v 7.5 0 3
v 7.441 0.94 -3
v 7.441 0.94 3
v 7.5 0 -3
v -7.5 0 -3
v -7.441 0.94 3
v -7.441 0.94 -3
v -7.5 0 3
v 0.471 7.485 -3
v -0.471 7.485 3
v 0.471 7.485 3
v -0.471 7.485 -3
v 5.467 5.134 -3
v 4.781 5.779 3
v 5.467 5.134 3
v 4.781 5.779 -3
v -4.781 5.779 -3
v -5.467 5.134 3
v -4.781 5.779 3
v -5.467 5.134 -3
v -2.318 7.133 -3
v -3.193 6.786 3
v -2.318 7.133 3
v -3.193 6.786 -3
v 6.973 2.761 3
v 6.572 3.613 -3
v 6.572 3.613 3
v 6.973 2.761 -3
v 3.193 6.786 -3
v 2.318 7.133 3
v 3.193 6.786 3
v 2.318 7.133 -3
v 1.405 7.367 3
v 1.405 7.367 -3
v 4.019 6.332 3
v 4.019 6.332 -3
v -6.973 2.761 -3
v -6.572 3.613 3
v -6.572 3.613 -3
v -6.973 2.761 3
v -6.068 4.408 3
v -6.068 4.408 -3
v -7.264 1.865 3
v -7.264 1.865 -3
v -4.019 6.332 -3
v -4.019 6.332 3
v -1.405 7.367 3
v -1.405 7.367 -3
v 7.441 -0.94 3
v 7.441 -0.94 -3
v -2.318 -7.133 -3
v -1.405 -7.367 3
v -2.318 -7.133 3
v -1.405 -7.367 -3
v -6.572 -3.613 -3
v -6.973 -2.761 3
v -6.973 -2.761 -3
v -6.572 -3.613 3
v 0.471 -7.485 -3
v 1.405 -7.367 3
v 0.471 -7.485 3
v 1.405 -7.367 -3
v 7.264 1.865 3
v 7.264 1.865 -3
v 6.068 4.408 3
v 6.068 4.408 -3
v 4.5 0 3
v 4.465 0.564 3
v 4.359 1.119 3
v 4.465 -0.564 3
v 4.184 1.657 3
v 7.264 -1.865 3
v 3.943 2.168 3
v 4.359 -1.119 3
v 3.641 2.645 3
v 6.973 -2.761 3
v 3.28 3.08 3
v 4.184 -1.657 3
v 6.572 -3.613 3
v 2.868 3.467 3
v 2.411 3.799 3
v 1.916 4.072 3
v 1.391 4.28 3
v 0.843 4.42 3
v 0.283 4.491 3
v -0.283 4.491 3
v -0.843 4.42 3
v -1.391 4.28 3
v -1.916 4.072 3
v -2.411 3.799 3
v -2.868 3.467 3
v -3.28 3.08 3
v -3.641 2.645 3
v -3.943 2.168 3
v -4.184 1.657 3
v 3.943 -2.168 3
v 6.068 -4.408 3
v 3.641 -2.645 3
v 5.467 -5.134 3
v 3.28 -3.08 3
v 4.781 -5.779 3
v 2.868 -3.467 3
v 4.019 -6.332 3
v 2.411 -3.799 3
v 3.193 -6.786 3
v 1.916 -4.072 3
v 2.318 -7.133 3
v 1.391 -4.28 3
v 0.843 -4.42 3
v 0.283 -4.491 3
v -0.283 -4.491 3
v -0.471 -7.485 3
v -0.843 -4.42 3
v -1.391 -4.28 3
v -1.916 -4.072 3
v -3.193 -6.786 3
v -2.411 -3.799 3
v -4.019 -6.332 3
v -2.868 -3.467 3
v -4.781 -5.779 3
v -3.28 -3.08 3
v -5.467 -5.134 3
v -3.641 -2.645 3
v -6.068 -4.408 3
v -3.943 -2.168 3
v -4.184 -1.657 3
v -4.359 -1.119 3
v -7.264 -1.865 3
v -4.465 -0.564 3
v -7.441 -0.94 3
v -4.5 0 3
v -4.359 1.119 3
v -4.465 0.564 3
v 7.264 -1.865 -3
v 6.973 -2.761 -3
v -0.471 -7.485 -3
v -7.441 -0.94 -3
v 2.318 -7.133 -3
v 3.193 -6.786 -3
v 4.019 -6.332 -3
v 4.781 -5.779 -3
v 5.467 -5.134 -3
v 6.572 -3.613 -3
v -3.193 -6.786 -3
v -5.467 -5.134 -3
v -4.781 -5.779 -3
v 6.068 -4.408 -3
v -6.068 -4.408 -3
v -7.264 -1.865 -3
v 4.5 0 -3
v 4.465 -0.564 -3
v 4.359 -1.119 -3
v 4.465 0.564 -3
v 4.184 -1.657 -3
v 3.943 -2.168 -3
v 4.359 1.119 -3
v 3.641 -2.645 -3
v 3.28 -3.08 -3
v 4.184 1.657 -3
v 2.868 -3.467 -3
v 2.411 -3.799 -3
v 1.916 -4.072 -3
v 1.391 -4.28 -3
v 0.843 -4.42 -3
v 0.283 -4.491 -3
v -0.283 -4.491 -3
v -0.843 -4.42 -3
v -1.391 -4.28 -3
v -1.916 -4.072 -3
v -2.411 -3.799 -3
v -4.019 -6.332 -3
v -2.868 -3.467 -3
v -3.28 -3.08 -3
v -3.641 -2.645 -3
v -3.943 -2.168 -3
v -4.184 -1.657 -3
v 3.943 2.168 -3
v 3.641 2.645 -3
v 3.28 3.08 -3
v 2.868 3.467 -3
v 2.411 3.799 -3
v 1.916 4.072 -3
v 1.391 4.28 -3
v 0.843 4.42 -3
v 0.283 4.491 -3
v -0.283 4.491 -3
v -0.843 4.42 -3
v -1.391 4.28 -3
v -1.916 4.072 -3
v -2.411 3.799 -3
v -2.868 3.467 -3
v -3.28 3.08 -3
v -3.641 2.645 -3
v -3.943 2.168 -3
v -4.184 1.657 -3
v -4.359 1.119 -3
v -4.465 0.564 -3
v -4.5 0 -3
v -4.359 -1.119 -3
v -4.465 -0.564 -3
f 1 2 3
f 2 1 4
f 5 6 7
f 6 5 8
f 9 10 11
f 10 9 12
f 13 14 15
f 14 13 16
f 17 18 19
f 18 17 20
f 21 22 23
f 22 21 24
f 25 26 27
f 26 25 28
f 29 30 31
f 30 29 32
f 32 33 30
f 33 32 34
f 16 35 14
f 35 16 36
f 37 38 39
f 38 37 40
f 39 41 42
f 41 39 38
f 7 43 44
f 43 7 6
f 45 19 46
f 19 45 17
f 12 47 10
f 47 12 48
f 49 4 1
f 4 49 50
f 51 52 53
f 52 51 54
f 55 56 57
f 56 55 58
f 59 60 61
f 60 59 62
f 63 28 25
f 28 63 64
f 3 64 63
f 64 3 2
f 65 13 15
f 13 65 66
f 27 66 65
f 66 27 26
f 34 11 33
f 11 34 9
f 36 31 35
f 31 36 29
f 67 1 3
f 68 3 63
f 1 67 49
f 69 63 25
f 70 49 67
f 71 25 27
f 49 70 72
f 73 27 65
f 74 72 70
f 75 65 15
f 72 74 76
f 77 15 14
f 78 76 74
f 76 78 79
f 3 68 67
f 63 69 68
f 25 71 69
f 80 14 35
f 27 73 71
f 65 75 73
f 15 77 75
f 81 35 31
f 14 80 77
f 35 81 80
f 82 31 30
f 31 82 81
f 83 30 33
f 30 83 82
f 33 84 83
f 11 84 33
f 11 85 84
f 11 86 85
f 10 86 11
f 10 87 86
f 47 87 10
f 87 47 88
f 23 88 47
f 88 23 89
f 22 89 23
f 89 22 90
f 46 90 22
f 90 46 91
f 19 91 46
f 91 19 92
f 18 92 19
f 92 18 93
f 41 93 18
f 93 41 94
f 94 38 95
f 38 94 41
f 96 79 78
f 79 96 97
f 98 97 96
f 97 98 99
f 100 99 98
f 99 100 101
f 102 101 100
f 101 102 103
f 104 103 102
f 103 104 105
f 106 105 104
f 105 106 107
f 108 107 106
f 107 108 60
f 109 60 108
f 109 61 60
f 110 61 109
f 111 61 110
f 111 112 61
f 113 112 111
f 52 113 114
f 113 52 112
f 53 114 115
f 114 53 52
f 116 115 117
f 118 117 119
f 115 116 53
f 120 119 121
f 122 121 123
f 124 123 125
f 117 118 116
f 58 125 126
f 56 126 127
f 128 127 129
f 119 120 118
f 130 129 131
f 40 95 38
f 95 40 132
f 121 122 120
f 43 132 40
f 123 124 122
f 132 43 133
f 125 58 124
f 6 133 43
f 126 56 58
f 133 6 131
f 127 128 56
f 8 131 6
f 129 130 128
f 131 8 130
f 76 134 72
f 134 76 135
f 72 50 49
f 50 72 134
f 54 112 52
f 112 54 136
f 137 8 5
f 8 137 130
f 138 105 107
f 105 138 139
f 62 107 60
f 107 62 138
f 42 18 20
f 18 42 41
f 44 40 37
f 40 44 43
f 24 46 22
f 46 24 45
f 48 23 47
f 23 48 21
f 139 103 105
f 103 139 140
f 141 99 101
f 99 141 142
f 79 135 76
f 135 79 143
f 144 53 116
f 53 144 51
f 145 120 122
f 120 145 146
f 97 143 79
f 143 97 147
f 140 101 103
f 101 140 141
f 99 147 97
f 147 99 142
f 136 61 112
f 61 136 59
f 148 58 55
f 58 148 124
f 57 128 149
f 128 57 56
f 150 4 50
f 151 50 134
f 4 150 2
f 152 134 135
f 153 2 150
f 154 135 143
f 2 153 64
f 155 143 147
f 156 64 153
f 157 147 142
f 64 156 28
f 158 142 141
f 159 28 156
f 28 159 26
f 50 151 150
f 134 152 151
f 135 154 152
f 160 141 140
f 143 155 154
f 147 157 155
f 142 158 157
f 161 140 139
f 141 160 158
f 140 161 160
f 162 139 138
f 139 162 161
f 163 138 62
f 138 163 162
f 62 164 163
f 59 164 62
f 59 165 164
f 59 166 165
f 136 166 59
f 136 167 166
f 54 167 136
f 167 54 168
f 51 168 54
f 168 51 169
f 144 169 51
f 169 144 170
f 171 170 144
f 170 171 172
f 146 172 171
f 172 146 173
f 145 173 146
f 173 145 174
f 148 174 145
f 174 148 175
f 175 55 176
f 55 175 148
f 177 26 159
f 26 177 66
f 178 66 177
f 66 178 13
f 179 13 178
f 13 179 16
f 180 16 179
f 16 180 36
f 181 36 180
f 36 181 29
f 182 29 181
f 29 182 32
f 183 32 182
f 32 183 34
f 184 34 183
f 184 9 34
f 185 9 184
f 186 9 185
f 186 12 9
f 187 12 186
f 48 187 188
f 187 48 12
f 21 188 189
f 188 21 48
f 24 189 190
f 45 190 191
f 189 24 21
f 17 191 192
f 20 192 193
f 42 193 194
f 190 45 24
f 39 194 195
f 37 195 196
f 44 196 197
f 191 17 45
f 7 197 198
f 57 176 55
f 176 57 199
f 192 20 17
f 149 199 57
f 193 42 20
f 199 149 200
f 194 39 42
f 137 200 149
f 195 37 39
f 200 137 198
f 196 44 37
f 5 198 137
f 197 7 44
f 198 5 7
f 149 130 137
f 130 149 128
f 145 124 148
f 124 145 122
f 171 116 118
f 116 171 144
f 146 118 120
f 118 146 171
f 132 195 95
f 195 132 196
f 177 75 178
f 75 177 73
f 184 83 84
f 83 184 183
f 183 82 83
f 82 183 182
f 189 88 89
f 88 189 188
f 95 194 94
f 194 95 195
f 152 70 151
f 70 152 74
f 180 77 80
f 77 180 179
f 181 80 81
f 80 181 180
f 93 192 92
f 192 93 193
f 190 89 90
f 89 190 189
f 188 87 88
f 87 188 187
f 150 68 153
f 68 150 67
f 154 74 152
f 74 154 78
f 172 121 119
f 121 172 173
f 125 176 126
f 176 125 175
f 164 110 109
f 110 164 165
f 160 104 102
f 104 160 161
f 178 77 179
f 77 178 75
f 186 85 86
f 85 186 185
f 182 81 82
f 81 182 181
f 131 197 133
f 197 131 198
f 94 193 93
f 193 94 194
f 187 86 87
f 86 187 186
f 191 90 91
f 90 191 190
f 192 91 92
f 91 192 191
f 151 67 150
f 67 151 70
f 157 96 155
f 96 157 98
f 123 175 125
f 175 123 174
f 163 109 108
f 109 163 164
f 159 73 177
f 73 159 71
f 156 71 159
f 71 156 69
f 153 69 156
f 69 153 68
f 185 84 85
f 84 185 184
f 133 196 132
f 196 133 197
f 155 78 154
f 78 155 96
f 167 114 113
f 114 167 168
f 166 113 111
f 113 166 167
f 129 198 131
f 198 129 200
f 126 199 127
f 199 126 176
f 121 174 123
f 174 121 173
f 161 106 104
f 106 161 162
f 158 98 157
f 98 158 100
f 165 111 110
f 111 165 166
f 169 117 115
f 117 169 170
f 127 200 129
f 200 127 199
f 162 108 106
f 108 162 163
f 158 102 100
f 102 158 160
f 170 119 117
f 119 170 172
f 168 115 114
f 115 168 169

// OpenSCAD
$fn = 50;


difference() {
	union() {
		translate(v = [0, 0, -3.0000000000]) {
			cylinder(h = 6, r = 7.5000000000);
		}
	}
	union() {
		translate(v = [0, 0, -100.0000000000]) {
			cylinder(h = 200, r = 4.5000000000);
		}
	}
}
